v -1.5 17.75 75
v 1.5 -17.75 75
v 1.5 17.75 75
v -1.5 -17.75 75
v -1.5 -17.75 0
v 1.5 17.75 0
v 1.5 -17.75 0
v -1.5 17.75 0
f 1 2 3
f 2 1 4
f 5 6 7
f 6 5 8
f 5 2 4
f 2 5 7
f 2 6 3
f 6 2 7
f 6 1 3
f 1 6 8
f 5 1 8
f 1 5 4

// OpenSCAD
// file: Inlet.scad
$fn = 100;
tiny = 0.01;


/******************************************************
 * dx,dy: Maße, wie bei 'Boden' angegeben.
 *****************************************************/
module inlet_top_down(dx,dy) {
  h1 = 3;  
  dx1 = 5.9;
  dx2 = 4.0; // vier mal Fase an Ecken

  difference() {
     translate([0,0,h1/2]) cube([dx-2*dx1,dy-2*dx1,h1], true); 
     translate([+dx/2-dx1,+dy/2-dx1,h1/2-tiny]) rotate([0,0,45]) cube([dx2,dx2,h1+3*tiny], true);
     translate([+dx/2-dx1,-dy/2+dx1,h1/2-tiny]) rotate([0,0,45]) cube([dx2,dx2,h1+3*tiny], true);
     translate([-dx/2+dx1,+dy/2-dx1,h1/2-tiny]) rotate([0,0,45]) cube([dx2,dx2,h1+3*tiny], true);
     translate([-dx/2+dx1,-dy/2+dx1,h1/2-tiny]) rotate([0,0,45]) cube([dx2,dx2,h1+3*tiny], true);
     }
}


/******************************************************
 * dy: Maß, wie bei 'Boden' angegeben.
 * h:  Maß, wie bei 'Kante' angegeben.
 *****************************************************/
module inlet_front_back(h,dy) {
  h1 = 3;
  dy1 = 12+12.5;
  translate([0,0,h/2]) cube([h1,dy-dy1,h], true);
}


/******************************************************
 * dx: Maß, wie bei 'Boden' angegeben.
 * h:  Maß, wie bei 'Kante' angegeben.
 *****************************************************/
module inlet_left_right(h,dx) {
  h1 = 3;
  dx1 = 12+12.5;
  translate([0,0,h/2]) cube([dx-dx1,h1,h], true);
}
// main file
$fn = 100;

use <Inlet.scad>


inlet_front_back(75,60);
